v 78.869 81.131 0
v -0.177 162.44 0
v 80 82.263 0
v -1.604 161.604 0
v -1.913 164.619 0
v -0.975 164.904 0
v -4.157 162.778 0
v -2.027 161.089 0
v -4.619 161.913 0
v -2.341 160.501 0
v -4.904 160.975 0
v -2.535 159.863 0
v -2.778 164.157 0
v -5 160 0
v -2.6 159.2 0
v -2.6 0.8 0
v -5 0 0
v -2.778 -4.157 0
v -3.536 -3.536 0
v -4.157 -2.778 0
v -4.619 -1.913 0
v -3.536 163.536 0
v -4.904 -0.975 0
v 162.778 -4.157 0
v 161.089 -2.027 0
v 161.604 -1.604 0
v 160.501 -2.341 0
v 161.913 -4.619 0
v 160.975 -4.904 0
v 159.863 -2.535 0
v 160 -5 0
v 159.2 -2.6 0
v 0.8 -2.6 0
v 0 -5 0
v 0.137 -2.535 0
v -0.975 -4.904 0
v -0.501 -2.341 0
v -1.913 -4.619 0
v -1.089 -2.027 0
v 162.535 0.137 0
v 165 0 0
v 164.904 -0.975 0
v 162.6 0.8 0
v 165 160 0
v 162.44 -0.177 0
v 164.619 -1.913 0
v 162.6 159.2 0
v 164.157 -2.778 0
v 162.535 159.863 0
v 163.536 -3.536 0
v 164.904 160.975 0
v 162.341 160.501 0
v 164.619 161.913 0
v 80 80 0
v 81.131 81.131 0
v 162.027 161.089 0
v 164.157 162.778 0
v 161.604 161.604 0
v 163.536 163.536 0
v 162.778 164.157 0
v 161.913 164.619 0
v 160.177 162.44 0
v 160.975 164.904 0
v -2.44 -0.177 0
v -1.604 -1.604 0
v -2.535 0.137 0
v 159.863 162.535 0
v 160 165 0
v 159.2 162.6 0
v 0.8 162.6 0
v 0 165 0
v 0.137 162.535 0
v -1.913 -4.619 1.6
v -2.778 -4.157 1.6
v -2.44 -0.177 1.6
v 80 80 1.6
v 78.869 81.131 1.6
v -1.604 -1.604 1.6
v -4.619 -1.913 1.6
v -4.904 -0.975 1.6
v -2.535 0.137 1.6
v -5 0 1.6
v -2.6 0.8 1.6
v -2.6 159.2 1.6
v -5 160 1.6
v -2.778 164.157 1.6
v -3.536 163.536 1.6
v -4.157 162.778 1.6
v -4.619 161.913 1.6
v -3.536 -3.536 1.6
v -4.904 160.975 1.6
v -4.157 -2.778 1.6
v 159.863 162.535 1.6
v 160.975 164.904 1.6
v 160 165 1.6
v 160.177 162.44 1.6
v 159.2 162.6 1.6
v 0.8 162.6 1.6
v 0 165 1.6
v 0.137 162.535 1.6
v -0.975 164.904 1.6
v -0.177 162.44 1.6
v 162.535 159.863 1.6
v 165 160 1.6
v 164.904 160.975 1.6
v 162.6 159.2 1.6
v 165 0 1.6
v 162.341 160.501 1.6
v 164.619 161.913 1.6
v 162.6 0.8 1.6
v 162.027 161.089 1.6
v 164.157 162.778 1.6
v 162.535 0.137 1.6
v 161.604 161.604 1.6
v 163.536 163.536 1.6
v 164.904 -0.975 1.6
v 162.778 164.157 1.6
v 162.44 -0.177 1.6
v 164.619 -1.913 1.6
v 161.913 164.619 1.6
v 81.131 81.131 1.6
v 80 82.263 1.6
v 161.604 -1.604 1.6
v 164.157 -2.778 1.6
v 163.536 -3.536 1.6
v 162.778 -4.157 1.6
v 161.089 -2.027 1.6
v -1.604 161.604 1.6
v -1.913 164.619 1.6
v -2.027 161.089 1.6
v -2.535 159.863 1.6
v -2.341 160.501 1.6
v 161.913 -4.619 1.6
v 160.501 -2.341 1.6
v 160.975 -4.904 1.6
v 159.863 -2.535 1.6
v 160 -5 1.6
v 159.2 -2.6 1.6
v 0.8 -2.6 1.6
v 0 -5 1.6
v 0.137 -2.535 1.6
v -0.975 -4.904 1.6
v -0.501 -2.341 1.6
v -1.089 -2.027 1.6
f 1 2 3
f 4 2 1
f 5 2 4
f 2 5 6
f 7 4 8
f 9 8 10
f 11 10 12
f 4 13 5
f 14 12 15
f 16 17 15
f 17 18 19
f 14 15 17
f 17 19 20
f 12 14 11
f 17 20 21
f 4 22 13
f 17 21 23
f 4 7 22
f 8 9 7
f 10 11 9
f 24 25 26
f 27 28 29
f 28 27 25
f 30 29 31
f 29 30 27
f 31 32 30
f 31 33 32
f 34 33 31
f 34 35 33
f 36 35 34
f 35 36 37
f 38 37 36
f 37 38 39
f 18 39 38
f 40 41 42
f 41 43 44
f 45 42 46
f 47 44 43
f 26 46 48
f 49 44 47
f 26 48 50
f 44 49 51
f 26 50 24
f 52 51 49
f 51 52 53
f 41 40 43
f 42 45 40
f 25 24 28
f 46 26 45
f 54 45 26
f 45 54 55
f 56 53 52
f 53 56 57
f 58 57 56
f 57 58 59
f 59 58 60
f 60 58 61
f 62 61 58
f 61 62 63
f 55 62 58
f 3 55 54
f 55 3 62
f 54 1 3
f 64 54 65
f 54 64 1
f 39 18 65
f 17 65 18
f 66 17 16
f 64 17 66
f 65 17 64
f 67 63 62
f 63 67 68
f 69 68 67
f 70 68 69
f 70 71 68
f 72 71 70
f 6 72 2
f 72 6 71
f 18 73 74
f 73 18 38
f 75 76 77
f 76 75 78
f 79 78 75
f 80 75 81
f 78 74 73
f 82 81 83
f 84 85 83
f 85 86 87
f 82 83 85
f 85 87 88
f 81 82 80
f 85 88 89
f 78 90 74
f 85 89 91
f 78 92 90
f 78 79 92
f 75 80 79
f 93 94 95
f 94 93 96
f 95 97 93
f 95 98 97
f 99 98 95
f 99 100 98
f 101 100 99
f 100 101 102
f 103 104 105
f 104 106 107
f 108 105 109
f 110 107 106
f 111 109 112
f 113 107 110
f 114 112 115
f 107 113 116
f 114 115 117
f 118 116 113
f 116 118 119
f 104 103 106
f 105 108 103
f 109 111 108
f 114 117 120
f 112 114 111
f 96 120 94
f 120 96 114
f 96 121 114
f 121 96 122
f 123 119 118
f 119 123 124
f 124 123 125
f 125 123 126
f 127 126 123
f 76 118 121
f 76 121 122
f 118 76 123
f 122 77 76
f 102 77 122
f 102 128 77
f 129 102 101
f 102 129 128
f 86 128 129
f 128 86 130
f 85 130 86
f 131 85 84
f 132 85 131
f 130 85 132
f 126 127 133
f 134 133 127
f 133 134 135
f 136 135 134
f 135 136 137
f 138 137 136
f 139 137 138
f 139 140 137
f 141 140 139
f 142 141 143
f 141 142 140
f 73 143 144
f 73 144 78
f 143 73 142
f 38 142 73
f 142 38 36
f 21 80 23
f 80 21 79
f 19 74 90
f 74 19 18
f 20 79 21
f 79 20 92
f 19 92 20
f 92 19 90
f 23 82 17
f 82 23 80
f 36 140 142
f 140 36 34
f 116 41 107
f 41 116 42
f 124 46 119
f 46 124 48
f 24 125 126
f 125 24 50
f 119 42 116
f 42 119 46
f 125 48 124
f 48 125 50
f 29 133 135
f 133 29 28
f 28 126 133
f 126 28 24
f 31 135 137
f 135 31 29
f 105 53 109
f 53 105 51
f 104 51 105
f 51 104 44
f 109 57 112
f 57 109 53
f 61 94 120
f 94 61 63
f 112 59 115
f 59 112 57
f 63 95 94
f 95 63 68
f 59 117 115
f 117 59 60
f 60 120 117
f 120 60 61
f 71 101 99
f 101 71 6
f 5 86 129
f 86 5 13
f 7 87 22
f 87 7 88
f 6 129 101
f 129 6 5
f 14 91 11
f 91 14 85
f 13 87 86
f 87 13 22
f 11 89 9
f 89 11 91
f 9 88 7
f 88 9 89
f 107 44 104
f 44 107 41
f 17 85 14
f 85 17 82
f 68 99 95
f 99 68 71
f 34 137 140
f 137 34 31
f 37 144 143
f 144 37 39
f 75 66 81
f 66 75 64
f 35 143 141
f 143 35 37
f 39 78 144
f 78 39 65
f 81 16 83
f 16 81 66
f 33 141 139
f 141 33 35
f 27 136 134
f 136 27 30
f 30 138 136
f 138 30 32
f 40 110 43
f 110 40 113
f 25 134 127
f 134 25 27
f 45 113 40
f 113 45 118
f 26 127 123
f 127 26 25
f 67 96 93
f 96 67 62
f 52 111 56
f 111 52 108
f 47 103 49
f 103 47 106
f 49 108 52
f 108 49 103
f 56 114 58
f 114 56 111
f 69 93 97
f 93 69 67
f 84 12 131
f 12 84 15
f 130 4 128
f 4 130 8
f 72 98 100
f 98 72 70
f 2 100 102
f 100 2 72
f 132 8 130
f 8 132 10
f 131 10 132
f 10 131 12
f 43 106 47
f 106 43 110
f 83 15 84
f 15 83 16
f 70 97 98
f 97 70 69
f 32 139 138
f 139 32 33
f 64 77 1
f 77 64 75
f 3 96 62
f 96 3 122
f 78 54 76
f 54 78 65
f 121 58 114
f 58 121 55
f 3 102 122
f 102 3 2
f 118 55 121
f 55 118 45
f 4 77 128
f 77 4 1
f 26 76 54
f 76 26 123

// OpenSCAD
//
// test print for 3D printer diagnosis

width = 160;
height = 160;

thick = 1.6;
radius = 5;

e = 0.1;


$fn=32;

module disc( r, t) {
     cylinder( h=t, r=r);
}


module plate( w, h, r, t) {
     disc( r, t);
     translate( [w, 0, 0])  disc( r, t);
     translate( [w, h, 0]) disc( r, t);
     translate( [0, h, 0]) disc( r, t) ;
     translate( [-r, 0, 0])
	  cube( [w+2*r, h, t]);
     translate( [0, -r, 0])
	  cube( [w, h+2*r, t]);
}

module plate_hole() {
     difference() {
	  plate( width, height, radius, thick);
	  translate( [thick/2, thick/2, -e])
	       plate( width-thick, width-thick, radius-thick, thick+2*e);
     }
}


plate_hole();
translate( [-radius/2, -radius/2, 0]) rotate( [0, 0, 45]) cube( [width*1.414+1.5*radius, thick, thick]);
translate( [-radius/2, height+radius/2, 0]) rotate( [0, 0, -45]) cube( [width*1.414+1.5*radius, thick, thick]);
